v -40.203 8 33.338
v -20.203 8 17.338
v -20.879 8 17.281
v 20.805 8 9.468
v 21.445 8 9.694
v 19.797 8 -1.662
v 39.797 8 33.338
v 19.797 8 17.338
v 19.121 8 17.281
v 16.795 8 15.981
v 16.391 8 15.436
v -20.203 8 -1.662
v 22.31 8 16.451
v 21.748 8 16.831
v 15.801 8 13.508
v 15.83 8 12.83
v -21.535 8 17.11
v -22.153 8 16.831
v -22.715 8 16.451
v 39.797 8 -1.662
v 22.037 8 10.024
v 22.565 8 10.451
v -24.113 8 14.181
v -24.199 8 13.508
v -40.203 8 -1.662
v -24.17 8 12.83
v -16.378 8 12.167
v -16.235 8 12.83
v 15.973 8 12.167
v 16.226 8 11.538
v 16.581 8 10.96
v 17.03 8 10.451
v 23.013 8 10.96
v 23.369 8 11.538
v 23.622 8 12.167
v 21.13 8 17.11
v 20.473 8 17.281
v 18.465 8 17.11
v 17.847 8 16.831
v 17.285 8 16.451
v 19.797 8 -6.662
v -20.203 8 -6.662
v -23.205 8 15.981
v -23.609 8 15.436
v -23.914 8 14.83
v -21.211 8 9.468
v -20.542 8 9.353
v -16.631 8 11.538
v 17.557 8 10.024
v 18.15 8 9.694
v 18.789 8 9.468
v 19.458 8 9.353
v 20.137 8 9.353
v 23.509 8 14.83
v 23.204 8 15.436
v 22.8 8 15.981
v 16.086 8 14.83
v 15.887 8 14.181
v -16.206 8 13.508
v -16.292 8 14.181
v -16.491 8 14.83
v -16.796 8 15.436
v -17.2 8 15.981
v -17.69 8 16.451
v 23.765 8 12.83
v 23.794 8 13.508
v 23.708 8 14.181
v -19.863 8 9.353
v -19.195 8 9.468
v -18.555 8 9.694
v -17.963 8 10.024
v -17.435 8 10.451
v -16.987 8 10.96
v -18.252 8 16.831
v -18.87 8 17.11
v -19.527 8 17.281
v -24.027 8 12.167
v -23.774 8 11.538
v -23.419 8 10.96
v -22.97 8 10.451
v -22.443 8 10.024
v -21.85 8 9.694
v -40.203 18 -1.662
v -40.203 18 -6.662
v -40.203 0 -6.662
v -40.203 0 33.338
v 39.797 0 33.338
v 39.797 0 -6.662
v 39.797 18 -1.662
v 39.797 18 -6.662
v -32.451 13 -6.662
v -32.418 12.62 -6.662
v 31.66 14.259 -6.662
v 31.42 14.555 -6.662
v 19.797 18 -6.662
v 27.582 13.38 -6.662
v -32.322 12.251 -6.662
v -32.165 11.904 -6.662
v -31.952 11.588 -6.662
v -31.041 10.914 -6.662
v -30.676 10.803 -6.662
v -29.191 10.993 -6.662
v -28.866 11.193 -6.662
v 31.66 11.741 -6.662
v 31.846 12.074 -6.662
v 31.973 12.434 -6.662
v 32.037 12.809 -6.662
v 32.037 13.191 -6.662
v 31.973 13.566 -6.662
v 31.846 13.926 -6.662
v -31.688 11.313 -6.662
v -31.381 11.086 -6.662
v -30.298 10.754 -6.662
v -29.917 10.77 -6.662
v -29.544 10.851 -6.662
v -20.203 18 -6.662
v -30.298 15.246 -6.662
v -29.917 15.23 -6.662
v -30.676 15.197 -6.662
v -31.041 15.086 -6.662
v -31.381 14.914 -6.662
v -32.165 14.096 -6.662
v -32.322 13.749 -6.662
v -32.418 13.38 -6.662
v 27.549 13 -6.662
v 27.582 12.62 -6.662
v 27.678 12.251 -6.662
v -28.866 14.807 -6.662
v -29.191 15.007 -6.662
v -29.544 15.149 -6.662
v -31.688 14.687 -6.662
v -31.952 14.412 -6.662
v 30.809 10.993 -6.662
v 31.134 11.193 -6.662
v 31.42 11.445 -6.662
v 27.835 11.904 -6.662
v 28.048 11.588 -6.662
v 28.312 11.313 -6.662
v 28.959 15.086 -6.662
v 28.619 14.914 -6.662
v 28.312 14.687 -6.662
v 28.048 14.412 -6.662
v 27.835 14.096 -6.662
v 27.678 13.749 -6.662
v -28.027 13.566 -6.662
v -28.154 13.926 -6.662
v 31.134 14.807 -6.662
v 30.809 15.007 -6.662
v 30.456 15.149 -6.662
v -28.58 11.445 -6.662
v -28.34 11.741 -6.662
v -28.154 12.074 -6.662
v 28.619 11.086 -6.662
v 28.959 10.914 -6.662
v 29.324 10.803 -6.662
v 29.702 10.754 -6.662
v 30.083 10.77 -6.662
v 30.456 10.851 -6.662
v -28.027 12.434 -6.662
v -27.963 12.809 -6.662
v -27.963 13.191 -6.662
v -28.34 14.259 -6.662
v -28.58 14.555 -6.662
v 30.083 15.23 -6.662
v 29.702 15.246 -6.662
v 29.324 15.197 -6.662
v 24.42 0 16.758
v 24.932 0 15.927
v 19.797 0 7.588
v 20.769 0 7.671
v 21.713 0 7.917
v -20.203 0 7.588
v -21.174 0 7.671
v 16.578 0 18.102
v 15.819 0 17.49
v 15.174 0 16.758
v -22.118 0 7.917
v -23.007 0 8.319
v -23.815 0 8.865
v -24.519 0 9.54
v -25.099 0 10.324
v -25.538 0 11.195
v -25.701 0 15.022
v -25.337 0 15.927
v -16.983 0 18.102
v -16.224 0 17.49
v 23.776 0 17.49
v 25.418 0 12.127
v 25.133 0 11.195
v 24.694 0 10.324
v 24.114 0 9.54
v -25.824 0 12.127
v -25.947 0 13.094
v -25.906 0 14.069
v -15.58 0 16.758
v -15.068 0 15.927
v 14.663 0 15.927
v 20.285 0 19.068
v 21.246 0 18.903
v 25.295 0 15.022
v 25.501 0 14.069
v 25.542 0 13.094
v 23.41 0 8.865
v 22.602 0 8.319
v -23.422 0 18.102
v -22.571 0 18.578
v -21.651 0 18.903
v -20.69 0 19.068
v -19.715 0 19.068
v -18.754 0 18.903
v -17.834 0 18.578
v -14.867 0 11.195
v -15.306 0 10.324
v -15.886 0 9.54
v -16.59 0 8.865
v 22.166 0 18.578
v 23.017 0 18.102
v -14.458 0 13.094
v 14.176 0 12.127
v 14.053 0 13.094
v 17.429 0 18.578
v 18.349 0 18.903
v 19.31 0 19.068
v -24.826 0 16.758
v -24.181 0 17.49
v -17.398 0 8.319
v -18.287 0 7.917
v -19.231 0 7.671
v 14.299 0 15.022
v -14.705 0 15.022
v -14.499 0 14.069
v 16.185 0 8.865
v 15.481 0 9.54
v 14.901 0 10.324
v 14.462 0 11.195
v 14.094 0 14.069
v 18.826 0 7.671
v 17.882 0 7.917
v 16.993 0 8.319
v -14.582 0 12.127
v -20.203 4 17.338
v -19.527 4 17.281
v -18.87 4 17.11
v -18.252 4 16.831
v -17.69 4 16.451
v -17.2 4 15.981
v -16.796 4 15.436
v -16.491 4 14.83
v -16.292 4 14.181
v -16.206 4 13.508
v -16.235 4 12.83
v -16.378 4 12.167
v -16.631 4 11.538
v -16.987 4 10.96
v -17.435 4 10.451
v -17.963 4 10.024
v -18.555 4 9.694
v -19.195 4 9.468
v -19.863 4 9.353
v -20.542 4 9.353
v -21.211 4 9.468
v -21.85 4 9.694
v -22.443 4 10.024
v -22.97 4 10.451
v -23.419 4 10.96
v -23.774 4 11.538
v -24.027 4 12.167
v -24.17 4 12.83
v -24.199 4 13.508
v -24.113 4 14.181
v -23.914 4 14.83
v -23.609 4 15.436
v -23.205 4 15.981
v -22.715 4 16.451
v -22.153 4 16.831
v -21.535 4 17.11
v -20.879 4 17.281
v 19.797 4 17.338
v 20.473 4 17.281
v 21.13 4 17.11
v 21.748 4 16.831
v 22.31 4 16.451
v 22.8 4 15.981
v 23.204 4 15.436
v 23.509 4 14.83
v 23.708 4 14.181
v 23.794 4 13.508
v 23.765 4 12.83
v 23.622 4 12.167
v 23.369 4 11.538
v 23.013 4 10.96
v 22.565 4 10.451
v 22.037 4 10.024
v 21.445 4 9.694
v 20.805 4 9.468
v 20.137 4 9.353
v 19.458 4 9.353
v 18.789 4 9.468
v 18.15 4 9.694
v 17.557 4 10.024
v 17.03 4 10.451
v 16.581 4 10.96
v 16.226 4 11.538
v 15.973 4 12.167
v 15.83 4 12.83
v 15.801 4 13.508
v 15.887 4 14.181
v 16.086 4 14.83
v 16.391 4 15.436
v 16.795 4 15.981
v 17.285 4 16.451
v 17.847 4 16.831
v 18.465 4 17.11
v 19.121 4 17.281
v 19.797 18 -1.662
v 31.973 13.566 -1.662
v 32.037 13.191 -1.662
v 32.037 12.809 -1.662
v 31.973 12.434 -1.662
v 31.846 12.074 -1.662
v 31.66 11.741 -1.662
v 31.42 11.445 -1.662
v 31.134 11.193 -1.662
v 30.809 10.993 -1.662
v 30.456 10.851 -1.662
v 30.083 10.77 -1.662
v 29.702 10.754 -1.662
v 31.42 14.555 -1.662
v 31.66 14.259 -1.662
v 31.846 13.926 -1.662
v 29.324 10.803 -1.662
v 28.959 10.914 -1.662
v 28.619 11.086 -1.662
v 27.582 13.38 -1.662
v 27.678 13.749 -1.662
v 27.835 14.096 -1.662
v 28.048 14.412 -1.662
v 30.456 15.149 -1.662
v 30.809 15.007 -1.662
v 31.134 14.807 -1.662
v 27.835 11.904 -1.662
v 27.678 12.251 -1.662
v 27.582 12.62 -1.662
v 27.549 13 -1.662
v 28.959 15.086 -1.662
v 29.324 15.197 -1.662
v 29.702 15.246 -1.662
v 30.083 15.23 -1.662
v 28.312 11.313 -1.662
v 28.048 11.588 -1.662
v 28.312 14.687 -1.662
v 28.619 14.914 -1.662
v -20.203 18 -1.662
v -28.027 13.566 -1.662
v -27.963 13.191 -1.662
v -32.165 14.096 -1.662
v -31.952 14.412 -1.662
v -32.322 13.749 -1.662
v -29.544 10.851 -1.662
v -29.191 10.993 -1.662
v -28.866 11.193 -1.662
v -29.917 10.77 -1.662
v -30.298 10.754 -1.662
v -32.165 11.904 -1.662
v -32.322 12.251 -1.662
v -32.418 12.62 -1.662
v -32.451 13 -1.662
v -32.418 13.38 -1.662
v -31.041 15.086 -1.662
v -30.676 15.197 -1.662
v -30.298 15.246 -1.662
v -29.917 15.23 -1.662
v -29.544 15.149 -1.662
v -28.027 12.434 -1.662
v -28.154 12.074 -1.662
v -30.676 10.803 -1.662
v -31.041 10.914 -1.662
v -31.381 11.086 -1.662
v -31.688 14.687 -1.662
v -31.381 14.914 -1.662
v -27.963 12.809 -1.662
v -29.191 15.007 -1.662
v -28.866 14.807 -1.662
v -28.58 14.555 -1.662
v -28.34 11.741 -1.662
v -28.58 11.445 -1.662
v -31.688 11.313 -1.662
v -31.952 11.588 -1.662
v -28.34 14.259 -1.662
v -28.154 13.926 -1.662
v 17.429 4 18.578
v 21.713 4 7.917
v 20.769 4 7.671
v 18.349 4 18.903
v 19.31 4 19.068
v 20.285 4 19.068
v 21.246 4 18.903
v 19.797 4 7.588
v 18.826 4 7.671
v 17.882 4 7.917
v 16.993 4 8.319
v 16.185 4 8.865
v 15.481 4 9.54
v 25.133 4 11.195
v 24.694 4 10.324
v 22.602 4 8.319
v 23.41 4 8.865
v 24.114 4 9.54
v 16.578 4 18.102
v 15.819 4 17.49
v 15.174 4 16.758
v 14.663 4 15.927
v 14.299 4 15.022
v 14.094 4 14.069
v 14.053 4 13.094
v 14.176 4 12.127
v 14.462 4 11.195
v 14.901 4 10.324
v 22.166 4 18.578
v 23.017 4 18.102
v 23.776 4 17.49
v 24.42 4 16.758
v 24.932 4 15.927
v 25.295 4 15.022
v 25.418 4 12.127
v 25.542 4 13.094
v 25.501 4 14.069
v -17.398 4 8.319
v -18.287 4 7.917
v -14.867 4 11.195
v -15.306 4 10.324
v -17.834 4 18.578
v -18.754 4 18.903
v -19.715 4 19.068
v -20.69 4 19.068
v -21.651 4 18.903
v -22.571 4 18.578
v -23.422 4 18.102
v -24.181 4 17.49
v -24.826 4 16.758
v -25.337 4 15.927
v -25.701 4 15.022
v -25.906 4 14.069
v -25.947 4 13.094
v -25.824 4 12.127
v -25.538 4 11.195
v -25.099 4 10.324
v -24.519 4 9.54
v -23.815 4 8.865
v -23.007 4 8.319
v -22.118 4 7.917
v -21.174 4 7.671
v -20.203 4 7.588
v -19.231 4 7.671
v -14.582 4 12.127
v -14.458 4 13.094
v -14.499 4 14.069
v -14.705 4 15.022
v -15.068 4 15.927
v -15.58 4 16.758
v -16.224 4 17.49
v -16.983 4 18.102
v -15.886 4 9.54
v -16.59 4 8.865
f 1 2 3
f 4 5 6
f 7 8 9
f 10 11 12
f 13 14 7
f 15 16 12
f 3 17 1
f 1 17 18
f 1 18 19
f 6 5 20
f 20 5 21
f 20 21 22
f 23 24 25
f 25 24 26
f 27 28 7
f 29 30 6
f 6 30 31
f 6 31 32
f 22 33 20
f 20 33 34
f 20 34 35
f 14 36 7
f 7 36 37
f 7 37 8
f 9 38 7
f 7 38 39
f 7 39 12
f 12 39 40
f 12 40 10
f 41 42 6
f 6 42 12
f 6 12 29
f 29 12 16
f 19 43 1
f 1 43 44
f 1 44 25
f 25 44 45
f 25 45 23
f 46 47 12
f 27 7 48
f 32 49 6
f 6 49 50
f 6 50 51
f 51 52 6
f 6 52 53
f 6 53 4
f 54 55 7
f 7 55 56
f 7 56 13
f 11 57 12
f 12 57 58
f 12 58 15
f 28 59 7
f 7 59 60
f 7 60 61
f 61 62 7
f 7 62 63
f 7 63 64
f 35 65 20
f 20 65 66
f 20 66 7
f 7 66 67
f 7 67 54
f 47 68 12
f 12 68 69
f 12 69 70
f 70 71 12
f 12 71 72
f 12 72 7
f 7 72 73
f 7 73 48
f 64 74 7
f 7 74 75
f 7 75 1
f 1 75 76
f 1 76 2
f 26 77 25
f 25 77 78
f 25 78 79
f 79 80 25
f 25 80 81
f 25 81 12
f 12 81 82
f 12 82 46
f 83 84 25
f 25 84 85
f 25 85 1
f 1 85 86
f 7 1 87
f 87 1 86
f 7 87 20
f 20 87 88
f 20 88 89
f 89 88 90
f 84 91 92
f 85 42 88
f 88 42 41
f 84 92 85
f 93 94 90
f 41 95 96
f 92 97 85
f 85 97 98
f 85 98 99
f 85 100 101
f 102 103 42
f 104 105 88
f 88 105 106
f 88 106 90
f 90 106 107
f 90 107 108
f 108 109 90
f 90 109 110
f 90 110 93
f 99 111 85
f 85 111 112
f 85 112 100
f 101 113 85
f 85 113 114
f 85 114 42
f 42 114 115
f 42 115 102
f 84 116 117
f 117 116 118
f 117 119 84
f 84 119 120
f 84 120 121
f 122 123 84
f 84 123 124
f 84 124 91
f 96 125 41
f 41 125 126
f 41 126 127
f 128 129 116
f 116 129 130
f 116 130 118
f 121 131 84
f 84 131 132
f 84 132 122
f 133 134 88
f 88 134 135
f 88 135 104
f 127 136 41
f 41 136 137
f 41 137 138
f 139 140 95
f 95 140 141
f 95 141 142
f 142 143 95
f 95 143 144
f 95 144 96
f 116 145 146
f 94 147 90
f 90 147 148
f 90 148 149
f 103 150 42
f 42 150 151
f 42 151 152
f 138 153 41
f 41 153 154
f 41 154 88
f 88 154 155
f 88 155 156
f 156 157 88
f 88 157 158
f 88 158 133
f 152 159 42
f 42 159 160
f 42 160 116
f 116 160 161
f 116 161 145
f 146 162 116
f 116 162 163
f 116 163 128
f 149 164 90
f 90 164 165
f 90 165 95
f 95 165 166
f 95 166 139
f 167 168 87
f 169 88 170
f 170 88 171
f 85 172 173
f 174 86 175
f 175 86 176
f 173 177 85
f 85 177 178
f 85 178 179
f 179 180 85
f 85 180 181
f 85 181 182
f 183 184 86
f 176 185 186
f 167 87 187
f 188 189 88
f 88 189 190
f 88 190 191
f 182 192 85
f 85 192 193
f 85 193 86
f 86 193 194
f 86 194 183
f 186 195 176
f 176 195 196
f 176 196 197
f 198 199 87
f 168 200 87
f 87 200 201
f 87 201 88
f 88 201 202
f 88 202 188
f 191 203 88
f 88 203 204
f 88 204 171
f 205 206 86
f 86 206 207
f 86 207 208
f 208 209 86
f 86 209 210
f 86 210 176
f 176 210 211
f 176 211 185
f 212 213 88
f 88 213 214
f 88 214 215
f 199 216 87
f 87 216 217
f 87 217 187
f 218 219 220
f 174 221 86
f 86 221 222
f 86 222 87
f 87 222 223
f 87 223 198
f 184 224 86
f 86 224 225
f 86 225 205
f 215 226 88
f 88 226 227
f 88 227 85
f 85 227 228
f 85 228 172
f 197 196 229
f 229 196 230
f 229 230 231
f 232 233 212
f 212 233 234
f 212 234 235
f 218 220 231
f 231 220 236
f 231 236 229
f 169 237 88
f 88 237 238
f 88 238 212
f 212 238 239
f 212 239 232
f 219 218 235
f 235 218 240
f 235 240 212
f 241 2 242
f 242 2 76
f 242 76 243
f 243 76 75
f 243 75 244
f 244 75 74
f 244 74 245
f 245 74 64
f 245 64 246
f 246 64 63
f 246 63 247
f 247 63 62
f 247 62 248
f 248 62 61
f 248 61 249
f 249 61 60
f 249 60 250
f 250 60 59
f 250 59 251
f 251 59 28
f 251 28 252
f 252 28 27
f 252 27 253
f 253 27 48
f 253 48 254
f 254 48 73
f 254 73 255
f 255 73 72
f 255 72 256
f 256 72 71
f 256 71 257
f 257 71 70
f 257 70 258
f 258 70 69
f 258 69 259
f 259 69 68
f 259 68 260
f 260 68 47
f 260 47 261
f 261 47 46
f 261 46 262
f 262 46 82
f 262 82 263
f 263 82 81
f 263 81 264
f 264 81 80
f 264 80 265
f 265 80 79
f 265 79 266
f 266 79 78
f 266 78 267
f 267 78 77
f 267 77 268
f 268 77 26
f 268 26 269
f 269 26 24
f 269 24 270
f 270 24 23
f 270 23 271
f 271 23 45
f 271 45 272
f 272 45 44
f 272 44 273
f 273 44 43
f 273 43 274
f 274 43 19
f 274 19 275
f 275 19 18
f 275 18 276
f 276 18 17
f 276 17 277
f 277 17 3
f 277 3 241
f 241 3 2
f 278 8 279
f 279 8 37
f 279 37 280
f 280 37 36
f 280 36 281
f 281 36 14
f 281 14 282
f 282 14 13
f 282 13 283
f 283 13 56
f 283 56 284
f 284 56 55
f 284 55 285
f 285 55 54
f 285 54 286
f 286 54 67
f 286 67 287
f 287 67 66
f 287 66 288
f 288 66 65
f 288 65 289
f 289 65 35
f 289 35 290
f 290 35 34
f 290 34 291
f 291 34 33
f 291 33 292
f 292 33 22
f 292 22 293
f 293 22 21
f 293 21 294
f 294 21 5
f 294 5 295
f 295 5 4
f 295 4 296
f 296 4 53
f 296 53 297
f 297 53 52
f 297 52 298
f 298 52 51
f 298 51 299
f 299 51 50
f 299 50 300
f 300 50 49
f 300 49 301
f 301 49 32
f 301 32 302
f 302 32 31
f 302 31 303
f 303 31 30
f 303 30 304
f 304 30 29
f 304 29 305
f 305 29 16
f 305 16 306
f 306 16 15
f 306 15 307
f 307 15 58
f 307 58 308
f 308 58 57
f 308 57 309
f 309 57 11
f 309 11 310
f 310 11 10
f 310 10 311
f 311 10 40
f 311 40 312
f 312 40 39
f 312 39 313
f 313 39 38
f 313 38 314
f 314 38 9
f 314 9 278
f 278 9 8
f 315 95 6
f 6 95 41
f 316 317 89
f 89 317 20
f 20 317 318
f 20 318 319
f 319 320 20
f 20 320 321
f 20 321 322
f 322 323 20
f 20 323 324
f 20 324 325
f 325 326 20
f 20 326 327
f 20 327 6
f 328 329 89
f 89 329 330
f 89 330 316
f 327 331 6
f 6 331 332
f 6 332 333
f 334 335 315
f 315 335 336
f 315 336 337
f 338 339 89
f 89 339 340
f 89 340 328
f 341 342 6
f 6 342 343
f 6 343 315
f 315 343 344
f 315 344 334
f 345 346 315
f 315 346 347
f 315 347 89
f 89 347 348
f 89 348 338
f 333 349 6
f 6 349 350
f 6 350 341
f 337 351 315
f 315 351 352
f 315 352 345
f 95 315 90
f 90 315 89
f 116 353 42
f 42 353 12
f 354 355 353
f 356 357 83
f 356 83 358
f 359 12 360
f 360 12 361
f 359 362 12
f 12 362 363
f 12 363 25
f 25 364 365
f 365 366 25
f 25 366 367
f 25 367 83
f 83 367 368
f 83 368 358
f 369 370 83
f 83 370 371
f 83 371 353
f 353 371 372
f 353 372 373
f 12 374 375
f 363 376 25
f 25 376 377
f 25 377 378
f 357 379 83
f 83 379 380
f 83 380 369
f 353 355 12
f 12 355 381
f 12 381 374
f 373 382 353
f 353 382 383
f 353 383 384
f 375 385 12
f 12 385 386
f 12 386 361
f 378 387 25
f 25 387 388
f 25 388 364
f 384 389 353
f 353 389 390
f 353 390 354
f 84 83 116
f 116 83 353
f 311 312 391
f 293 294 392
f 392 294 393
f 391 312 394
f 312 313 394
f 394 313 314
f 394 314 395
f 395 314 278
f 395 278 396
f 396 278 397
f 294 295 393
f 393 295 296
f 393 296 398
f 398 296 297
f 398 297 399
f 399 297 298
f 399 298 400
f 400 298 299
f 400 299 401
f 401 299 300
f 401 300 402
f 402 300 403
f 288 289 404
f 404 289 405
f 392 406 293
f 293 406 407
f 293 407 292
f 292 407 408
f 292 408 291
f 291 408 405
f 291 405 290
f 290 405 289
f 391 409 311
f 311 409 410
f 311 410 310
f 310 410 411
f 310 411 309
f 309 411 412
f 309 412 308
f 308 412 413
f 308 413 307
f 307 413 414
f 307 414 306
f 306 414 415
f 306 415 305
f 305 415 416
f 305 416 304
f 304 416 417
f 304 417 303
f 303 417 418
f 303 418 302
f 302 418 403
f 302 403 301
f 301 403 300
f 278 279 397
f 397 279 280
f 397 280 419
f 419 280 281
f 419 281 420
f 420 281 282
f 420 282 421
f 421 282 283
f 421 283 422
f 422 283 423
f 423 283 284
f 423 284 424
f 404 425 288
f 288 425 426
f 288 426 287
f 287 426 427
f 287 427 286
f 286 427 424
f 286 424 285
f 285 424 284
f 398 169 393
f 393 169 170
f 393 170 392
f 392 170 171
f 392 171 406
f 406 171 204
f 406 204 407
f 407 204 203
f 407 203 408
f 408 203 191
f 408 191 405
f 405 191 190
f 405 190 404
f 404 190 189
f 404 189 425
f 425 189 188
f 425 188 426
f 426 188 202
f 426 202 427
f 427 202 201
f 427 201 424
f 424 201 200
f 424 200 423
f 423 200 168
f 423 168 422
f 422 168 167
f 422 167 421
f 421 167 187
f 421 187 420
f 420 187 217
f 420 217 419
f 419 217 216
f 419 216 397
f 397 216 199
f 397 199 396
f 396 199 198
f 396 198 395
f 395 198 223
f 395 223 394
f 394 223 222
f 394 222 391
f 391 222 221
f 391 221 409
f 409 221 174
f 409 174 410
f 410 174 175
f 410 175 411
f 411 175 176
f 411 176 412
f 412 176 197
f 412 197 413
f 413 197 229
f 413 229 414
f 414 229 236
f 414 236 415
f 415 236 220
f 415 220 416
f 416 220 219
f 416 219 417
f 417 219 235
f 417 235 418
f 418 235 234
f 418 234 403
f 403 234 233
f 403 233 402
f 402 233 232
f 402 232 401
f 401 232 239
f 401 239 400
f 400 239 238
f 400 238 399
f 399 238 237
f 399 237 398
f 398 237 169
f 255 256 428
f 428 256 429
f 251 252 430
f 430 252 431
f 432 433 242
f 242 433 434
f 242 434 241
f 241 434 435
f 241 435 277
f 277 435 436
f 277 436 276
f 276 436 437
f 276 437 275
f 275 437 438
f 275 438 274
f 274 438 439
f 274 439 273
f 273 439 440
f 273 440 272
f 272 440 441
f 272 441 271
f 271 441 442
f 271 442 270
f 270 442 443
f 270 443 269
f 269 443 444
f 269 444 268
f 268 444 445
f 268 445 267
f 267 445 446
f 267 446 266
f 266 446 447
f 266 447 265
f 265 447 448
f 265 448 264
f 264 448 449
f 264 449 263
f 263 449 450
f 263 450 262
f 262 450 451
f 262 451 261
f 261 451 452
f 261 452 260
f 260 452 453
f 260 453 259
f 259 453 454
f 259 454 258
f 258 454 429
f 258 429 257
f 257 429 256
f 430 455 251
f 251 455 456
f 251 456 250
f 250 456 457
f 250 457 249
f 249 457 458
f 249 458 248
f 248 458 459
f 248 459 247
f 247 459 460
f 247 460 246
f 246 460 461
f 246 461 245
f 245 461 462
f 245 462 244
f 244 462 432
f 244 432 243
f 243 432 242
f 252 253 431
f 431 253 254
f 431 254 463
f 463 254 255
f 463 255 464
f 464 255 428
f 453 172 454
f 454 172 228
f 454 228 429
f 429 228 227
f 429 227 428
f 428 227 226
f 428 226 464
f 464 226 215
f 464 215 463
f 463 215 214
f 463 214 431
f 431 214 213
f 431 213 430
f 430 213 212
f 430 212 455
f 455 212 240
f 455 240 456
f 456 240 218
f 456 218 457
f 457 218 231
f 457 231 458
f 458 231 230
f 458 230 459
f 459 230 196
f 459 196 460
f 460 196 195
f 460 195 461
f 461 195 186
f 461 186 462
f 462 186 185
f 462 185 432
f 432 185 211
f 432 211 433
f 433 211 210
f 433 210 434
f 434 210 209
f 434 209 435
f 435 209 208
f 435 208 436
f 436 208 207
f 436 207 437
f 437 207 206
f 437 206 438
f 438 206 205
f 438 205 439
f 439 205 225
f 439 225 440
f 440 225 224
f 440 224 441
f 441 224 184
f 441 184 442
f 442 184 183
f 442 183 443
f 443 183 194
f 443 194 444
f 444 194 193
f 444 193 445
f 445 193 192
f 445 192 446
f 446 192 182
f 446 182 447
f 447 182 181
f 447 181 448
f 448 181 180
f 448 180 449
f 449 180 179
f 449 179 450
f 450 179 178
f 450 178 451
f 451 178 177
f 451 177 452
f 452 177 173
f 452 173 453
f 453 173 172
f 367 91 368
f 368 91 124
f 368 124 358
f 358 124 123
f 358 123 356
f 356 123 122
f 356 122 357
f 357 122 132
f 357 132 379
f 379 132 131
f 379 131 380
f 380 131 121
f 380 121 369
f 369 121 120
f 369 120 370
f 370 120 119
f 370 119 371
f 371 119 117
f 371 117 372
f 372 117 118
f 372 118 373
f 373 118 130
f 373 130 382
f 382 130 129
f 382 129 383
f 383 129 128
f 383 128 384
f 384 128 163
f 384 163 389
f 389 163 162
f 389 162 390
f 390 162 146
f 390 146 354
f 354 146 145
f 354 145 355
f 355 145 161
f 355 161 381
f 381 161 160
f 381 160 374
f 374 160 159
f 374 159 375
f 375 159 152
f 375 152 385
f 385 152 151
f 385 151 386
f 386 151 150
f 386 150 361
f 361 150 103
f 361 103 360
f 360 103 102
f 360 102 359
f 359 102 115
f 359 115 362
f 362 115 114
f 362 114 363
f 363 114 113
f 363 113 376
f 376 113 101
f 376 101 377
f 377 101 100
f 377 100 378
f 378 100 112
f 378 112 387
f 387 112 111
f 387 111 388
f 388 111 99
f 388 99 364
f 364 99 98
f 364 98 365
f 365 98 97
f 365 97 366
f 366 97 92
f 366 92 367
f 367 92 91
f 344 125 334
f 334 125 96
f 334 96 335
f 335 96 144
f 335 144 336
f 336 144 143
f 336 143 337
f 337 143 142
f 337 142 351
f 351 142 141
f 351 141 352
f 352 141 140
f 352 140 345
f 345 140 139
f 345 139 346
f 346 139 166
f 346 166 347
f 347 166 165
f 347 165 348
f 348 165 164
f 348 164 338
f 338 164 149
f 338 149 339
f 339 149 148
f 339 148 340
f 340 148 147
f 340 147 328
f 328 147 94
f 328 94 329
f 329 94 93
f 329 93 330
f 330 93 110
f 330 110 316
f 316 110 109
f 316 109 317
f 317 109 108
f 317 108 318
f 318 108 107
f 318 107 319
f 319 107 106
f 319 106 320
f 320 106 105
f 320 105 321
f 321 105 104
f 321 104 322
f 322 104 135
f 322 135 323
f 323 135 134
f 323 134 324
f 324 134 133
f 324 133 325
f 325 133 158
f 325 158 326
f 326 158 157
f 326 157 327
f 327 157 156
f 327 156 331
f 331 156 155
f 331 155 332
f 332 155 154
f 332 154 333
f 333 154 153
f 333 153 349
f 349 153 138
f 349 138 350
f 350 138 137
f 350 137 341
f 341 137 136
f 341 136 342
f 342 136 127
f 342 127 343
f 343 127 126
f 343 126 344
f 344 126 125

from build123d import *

# Parameters (mm, degrees)
SKETCH1_W                 = 80
SKETCH1_H                 = 40
BOSS_EXTRUDE1_DEPTH       = 8
SKETCH2_R                 = 4
CUT_EXTRUDE1_DEPTH        = 4
SKETCH3_W                 = 20
SKETCH3_H                 = 5
BOSS_EXTRUDE2_DEPTH       = 10
SKETCH5_R                 = 5.75
CUT_EXTRUDE3_DEPTH        = 4
F_8_CLEARANCE_HOLE1_D     = 4.4958
F_8_CLEARANCE_HOLE1_DEPTH = 5
F_8_CLEARANCE_HOLE1_TIP   = 1.350674586


with BuildPart() as part:
    # Sketch1 → Boss-Extrude1 (new body)
    with BuildSketch(Plane(origin=(0, 0, 0), x_dir=(1, 0, 0), z_dir=(0, 1, 0))):
        with Locations((-0.202602356, -13.338458494)):
            Rectangle(SKETCH1_W, SKETCH1_H)
    extrude(amount=BOSS_EXTRUDE1_DEPTH)

    # Sketch2 → Cut-Extrude1 (cut)
    with BuildSketch(Plane(origin=(0, 8, 0), x_dir=(1, 0, 0), z_dir=(0, 1, 0))):
        with Locations((19.797397644, -13.338458494)):
            Circle(SKETCH2_R)
        with Locations((-20.202602356, -13.338458494)):
            Circle(SKETCH2_R)
    extrude(amount=-CUT_EXTRUDE1_DEPTH, mode=Mode.SUBTRACT)

    # Sketch3 → Boss-Extrude2 (add)
    with BuildSketch(Plane(origin=(0, 8, 0), x_dir=(1, 0, 0), z_dir=(0, 1, 0))):
        with Locations((29.797397644, 4.161541506)):
            Rectangle(SKETCH3_W, SKETCH3_H)
        with Locations((-30.202602356, 4.161541506)):
            Rectangle(SKETCH3_W, SKETCH3_H)
    extrude(amount=BOSS_EXTRUDE2_DEPTH)

    # Sketch5 → Cut-Extrude3 (cut)
    with BuildSketch(Plane(origin=(0, 0, 0), x_dir=(-1, 0, 0), z_dir=(0, -1, 0))):
        with Locations((20.202602356, -13.338458494)):
            Circle(SKETCH5_R)
        with Locations((-19.797397644, -13.338458494)):
            Circle(SKETCH5_R)
    extrude(amount=-CUT_EXTRUDE3_DEPTH, mode=Mode.SUBTRACT)

    # #8 Clearance Hole1
    with Locations(Plane(origin=(29.797397644, 13, -6.661541506), x_dir=(-1, 0, 0), z_dir=(0, 0, -1))):
        with Locations((0, 0), (60, 0)):
            Hole(F_8_CLEARANCE_HOLE1_D / 2, depth=F_8_CLEARANCE_HOLE1_DEPTH)
            with Locations((0, 0, -(F_8_CLEARANCE_HOLE1_DEPTH + F_8_CLEARANCE_HOLE1_TIP / 2))):  # 118° drill point
                Cone(0, F_8_CLEARANCE_HOLE1_D / 2, F_8_CLEARANCE_HOLE1_TIP, mode=Mode.SUBTRACT)


solid = part.part
